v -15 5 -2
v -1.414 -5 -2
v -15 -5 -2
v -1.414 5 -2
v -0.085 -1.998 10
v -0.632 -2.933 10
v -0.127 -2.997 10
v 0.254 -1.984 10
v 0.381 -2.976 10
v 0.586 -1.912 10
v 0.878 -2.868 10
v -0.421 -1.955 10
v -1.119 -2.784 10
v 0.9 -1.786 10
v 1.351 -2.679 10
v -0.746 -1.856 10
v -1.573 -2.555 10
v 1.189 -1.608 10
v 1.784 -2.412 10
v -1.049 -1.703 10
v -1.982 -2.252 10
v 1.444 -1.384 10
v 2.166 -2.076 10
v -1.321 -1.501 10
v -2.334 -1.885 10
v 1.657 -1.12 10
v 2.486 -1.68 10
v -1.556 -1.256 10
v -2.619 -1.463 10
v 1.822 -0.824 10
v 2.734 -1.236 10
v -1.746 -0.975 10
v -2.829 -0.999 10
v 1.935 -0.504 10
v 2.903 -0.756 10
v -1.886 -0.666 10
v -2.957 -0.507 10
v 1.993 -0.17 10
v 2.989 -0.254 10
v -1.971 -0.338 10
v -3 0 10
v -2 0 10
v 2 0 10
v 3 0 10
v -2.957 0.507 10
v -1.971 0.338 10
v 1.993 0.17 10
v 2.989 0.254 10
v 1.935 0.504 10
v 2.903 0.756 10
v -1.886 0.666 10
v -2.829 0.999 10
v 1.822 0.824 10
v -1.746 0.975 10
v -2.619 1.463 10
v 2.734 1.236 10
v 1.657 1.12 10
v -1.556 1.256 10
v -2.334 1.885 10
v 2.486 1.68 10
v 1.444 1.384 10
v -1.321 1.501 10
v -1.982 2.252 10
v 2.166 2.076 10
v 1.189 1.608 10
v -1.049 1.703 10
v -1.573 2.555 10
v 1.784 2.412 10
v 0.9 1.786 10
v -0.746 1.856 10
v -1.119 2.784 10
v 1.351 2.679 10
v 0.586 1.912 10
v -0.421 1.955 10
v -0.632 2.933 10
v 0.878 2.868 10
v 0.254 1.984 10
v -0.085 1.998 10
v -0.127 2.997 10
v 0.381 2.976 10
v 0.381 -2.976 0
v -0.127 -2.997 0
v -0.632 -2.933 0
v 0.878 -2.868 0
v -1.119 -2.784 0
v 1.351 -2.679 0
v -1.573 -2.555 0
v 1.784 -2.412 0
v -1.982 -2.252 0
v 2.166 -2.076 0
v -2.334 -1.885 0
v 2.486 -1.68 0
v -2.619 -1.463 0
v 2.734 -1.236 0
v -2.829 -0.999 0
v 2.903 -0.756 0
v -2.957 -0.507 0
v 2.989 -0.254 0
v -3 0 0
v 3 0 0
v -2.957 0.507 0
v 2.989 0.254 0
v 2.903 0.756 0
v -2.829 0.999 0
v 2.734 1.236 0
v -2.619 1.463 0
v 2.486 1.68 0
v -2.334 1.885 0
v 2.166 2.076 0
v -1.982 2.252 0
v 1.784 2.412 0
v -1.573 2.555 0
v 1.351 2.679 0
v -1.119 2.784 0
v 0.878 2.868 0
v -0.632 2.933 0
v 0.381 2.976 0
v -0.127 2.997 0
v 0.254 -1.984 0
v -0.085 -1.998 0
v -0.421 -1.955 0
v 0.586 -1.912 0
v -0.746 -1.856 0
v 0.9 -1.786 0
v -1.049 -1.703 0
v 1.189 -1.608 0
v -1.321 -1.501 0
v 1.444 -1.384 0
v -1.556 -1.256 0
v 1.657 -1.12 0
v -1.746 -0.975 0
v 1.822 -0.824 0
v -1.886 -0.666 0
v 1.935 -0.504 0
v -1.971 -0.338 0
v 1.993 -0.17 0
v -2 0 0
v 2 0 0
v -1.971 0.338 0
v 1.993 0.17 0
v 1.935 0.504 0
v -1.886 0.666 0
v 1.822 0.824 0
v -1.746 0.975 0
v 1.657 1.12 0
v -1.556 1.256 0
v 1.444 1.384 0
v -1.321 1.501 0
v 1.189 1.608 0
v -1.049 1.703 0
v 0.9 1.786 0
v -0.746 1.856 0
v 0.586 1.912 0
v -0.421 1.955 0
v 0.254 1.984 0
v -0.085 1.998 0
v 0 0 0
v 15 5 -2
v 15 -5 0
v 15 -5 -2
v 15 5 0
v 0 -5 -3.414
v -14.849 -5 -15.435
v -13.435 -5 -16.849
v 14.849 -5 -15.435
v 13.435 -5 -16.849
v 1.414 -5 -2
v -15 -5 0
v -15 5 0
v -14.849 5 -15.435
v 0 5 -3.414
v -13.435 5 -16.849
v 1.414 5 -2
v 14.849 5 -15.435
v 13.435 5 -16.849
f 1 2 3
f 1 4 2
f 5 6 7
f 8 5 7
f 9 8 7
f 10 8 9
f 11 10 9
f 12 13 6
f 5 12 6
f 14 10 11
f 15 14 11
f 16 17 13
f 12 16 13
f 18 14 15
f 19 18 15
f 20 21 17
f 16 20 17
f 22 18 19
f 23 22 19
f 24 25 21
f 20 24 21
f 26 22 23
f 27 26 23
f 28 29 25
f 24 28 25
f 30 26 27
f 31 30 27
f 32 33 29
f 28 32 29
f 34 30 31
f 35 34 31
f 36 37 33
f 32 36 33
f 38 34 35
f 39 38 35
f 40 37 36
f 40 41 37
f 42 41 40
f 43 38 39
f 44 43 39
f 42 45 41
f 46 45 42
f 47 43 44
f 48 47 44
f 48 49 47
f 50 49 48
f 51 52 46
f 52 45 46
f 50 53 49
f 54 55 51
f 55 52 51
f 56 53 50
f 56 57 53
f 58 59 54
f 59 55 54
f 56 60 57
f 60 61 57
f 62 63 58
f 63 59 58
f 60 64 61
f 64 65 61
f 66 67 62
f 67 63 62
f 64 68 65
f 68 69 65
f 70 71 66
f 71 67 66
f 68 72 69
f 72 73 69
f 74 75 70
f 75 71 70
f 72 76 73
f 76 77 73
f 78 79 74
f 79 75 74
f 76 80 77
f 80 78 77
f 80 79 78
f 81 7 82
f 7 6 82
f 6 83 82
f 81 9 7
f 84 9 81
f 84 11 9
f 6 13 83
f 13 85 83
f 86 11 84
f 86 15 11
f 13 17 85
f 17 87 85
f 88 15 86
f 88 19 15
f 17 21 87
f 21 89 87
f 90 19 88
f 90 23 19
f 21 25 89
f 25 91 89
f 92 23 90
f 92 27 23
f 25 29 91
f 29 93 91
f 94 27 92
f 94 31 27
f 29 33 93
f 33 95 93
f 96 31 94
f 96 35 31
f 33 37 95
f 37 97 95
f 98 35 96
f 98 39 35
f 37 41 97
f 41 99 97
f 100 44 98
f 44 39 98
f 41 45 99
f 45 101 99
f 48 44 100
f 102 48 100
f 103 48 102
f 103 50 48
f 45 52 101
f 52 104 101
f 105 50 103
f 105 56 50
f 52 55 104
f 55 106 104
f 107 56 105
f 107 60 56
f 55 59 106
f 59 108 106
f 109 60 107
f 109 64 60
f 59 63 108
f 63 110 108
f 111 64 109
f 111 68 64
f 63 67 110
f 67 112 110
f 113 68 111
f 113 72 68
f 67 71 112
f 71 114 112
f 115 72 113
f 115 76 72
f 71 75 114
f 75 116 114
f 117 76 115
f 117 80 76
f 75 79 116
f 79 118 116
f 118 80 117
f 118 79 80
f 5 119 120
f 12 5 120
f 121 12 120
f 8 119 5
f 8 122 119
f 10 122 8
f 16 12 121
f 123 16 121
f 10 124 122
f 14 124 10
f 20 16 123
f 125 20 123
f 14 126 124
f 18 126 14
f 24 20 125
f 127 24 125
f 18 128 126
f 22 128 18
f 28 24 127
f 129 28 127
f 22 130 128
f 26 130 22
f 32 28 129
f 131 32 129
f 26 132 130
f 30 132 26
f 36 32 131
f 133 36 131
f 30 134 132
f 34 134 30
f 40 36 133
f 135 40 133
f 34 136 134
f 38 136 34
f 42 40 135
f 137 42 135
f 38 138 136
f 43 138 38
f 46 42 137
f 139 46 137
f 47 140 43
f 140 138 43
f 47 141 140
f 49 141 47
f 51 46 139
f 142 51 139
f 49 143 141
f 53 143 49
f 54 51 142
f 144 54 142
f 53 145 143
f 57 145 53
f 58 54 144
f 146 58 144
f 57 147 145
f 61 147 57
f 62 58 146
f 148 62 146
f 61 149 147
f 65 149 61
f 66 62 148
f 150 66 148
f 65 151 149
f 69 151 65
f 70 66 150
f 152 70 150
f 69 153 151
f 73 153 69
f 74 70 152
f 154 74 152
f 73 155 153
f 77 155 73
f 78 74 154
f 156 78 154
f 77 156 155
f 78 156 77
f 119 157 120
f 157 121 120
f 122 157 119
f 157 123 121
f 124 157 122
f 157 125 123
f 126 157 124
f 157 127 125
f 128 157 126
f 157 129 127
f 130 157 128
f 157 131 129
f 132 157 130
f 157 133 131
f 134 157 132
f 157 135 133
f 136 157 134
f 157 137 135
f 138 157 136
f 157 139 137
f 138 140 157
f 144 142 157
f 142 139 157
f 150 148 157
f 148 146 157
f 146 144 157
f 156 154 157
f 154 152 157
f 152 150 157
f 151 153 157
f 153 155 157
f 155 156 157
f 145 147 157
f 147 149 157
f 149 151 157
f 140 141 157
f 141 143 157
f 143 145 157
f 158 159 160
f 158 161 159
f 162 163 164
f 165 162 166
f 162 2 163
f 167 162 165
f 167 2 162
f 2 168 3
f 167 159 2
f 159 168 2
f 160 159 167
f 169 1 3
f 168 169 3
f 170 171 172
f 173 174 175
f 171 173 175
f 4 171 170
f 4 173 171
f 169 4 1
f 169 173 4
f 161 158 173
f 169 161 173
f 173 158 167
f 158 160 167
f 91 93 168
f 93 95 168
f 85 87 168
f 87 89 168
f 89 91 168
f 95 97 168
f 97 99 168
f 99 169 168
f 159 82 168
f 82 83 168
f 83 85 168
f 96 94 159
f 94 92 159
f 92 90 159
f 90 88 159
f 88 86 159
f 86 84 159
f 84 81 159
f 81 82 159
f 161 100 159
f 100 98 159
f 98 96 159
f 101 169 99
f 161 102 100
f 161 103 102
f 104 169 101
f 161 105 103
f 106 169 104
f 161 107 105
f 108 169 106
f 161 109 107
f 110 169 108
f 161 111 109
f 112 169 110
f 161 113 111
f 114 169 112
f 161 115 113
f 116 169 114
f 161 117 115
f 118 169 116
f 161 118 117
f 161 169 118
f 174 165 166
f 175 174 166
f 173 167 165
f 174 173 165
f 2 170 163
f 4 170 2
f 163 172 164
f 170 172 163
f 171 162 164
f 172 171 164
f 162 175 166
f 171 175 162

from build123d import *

# Parameters (mm, degrees)
SKETCH1_R           = 3
SKETCH1_R_2         = 2
BOSS_EXTRUDE1_DEPTH = 10
BOSS_EXTRUDE2_DEPTH = 2
BOSS_EXTRUDE3_DEPTH = 10


with BuildPart() as part:
    # Sketch1 → Boss-Extrude1 (new body)
    with BuildSketch(Plane.XY):
        Circle(SKETCH1_R)
        Circle(SKETCH1_R_2, mode=Mode.SUBTRACT)
    extrude(amount=BOSS_EXTRUDE1_DEPTH)

    # Sketch2 → Boss-Extrude2 (add)
    with BuildSketch(Plane(origin=(0, 0, 0), x_dir=(-1, 0, 0), z_dir=(0, 0, -1))):
        Polygon((0, -5), (15, -5), (15, 5), (-15, 5), (-15, -5), align=None)
    extrude(amount=BOSS_EXTRUDE2_DEPTH)

    # Sketch3 → Boss-Extrude3 (add)
    with BuildSketch(Plane(origin=(0, 5, 0), x_dir=(1, 0, 0), z_dir=(0, 1, 0))):
        Polygon((-0.707106781, 1.292893219), (0, 2), (0.707106781, 1.292893219), (14.849242405, 15.435028843), (13.435028843, 16.849242405), (0, 3.414213562), (-13.435028843, 16.849242405), (-14.849242405, 15.435028843), align=None)
    extrude(amount=-BOSS_EXTRUDE3_DEPTH)


solid = part.part
